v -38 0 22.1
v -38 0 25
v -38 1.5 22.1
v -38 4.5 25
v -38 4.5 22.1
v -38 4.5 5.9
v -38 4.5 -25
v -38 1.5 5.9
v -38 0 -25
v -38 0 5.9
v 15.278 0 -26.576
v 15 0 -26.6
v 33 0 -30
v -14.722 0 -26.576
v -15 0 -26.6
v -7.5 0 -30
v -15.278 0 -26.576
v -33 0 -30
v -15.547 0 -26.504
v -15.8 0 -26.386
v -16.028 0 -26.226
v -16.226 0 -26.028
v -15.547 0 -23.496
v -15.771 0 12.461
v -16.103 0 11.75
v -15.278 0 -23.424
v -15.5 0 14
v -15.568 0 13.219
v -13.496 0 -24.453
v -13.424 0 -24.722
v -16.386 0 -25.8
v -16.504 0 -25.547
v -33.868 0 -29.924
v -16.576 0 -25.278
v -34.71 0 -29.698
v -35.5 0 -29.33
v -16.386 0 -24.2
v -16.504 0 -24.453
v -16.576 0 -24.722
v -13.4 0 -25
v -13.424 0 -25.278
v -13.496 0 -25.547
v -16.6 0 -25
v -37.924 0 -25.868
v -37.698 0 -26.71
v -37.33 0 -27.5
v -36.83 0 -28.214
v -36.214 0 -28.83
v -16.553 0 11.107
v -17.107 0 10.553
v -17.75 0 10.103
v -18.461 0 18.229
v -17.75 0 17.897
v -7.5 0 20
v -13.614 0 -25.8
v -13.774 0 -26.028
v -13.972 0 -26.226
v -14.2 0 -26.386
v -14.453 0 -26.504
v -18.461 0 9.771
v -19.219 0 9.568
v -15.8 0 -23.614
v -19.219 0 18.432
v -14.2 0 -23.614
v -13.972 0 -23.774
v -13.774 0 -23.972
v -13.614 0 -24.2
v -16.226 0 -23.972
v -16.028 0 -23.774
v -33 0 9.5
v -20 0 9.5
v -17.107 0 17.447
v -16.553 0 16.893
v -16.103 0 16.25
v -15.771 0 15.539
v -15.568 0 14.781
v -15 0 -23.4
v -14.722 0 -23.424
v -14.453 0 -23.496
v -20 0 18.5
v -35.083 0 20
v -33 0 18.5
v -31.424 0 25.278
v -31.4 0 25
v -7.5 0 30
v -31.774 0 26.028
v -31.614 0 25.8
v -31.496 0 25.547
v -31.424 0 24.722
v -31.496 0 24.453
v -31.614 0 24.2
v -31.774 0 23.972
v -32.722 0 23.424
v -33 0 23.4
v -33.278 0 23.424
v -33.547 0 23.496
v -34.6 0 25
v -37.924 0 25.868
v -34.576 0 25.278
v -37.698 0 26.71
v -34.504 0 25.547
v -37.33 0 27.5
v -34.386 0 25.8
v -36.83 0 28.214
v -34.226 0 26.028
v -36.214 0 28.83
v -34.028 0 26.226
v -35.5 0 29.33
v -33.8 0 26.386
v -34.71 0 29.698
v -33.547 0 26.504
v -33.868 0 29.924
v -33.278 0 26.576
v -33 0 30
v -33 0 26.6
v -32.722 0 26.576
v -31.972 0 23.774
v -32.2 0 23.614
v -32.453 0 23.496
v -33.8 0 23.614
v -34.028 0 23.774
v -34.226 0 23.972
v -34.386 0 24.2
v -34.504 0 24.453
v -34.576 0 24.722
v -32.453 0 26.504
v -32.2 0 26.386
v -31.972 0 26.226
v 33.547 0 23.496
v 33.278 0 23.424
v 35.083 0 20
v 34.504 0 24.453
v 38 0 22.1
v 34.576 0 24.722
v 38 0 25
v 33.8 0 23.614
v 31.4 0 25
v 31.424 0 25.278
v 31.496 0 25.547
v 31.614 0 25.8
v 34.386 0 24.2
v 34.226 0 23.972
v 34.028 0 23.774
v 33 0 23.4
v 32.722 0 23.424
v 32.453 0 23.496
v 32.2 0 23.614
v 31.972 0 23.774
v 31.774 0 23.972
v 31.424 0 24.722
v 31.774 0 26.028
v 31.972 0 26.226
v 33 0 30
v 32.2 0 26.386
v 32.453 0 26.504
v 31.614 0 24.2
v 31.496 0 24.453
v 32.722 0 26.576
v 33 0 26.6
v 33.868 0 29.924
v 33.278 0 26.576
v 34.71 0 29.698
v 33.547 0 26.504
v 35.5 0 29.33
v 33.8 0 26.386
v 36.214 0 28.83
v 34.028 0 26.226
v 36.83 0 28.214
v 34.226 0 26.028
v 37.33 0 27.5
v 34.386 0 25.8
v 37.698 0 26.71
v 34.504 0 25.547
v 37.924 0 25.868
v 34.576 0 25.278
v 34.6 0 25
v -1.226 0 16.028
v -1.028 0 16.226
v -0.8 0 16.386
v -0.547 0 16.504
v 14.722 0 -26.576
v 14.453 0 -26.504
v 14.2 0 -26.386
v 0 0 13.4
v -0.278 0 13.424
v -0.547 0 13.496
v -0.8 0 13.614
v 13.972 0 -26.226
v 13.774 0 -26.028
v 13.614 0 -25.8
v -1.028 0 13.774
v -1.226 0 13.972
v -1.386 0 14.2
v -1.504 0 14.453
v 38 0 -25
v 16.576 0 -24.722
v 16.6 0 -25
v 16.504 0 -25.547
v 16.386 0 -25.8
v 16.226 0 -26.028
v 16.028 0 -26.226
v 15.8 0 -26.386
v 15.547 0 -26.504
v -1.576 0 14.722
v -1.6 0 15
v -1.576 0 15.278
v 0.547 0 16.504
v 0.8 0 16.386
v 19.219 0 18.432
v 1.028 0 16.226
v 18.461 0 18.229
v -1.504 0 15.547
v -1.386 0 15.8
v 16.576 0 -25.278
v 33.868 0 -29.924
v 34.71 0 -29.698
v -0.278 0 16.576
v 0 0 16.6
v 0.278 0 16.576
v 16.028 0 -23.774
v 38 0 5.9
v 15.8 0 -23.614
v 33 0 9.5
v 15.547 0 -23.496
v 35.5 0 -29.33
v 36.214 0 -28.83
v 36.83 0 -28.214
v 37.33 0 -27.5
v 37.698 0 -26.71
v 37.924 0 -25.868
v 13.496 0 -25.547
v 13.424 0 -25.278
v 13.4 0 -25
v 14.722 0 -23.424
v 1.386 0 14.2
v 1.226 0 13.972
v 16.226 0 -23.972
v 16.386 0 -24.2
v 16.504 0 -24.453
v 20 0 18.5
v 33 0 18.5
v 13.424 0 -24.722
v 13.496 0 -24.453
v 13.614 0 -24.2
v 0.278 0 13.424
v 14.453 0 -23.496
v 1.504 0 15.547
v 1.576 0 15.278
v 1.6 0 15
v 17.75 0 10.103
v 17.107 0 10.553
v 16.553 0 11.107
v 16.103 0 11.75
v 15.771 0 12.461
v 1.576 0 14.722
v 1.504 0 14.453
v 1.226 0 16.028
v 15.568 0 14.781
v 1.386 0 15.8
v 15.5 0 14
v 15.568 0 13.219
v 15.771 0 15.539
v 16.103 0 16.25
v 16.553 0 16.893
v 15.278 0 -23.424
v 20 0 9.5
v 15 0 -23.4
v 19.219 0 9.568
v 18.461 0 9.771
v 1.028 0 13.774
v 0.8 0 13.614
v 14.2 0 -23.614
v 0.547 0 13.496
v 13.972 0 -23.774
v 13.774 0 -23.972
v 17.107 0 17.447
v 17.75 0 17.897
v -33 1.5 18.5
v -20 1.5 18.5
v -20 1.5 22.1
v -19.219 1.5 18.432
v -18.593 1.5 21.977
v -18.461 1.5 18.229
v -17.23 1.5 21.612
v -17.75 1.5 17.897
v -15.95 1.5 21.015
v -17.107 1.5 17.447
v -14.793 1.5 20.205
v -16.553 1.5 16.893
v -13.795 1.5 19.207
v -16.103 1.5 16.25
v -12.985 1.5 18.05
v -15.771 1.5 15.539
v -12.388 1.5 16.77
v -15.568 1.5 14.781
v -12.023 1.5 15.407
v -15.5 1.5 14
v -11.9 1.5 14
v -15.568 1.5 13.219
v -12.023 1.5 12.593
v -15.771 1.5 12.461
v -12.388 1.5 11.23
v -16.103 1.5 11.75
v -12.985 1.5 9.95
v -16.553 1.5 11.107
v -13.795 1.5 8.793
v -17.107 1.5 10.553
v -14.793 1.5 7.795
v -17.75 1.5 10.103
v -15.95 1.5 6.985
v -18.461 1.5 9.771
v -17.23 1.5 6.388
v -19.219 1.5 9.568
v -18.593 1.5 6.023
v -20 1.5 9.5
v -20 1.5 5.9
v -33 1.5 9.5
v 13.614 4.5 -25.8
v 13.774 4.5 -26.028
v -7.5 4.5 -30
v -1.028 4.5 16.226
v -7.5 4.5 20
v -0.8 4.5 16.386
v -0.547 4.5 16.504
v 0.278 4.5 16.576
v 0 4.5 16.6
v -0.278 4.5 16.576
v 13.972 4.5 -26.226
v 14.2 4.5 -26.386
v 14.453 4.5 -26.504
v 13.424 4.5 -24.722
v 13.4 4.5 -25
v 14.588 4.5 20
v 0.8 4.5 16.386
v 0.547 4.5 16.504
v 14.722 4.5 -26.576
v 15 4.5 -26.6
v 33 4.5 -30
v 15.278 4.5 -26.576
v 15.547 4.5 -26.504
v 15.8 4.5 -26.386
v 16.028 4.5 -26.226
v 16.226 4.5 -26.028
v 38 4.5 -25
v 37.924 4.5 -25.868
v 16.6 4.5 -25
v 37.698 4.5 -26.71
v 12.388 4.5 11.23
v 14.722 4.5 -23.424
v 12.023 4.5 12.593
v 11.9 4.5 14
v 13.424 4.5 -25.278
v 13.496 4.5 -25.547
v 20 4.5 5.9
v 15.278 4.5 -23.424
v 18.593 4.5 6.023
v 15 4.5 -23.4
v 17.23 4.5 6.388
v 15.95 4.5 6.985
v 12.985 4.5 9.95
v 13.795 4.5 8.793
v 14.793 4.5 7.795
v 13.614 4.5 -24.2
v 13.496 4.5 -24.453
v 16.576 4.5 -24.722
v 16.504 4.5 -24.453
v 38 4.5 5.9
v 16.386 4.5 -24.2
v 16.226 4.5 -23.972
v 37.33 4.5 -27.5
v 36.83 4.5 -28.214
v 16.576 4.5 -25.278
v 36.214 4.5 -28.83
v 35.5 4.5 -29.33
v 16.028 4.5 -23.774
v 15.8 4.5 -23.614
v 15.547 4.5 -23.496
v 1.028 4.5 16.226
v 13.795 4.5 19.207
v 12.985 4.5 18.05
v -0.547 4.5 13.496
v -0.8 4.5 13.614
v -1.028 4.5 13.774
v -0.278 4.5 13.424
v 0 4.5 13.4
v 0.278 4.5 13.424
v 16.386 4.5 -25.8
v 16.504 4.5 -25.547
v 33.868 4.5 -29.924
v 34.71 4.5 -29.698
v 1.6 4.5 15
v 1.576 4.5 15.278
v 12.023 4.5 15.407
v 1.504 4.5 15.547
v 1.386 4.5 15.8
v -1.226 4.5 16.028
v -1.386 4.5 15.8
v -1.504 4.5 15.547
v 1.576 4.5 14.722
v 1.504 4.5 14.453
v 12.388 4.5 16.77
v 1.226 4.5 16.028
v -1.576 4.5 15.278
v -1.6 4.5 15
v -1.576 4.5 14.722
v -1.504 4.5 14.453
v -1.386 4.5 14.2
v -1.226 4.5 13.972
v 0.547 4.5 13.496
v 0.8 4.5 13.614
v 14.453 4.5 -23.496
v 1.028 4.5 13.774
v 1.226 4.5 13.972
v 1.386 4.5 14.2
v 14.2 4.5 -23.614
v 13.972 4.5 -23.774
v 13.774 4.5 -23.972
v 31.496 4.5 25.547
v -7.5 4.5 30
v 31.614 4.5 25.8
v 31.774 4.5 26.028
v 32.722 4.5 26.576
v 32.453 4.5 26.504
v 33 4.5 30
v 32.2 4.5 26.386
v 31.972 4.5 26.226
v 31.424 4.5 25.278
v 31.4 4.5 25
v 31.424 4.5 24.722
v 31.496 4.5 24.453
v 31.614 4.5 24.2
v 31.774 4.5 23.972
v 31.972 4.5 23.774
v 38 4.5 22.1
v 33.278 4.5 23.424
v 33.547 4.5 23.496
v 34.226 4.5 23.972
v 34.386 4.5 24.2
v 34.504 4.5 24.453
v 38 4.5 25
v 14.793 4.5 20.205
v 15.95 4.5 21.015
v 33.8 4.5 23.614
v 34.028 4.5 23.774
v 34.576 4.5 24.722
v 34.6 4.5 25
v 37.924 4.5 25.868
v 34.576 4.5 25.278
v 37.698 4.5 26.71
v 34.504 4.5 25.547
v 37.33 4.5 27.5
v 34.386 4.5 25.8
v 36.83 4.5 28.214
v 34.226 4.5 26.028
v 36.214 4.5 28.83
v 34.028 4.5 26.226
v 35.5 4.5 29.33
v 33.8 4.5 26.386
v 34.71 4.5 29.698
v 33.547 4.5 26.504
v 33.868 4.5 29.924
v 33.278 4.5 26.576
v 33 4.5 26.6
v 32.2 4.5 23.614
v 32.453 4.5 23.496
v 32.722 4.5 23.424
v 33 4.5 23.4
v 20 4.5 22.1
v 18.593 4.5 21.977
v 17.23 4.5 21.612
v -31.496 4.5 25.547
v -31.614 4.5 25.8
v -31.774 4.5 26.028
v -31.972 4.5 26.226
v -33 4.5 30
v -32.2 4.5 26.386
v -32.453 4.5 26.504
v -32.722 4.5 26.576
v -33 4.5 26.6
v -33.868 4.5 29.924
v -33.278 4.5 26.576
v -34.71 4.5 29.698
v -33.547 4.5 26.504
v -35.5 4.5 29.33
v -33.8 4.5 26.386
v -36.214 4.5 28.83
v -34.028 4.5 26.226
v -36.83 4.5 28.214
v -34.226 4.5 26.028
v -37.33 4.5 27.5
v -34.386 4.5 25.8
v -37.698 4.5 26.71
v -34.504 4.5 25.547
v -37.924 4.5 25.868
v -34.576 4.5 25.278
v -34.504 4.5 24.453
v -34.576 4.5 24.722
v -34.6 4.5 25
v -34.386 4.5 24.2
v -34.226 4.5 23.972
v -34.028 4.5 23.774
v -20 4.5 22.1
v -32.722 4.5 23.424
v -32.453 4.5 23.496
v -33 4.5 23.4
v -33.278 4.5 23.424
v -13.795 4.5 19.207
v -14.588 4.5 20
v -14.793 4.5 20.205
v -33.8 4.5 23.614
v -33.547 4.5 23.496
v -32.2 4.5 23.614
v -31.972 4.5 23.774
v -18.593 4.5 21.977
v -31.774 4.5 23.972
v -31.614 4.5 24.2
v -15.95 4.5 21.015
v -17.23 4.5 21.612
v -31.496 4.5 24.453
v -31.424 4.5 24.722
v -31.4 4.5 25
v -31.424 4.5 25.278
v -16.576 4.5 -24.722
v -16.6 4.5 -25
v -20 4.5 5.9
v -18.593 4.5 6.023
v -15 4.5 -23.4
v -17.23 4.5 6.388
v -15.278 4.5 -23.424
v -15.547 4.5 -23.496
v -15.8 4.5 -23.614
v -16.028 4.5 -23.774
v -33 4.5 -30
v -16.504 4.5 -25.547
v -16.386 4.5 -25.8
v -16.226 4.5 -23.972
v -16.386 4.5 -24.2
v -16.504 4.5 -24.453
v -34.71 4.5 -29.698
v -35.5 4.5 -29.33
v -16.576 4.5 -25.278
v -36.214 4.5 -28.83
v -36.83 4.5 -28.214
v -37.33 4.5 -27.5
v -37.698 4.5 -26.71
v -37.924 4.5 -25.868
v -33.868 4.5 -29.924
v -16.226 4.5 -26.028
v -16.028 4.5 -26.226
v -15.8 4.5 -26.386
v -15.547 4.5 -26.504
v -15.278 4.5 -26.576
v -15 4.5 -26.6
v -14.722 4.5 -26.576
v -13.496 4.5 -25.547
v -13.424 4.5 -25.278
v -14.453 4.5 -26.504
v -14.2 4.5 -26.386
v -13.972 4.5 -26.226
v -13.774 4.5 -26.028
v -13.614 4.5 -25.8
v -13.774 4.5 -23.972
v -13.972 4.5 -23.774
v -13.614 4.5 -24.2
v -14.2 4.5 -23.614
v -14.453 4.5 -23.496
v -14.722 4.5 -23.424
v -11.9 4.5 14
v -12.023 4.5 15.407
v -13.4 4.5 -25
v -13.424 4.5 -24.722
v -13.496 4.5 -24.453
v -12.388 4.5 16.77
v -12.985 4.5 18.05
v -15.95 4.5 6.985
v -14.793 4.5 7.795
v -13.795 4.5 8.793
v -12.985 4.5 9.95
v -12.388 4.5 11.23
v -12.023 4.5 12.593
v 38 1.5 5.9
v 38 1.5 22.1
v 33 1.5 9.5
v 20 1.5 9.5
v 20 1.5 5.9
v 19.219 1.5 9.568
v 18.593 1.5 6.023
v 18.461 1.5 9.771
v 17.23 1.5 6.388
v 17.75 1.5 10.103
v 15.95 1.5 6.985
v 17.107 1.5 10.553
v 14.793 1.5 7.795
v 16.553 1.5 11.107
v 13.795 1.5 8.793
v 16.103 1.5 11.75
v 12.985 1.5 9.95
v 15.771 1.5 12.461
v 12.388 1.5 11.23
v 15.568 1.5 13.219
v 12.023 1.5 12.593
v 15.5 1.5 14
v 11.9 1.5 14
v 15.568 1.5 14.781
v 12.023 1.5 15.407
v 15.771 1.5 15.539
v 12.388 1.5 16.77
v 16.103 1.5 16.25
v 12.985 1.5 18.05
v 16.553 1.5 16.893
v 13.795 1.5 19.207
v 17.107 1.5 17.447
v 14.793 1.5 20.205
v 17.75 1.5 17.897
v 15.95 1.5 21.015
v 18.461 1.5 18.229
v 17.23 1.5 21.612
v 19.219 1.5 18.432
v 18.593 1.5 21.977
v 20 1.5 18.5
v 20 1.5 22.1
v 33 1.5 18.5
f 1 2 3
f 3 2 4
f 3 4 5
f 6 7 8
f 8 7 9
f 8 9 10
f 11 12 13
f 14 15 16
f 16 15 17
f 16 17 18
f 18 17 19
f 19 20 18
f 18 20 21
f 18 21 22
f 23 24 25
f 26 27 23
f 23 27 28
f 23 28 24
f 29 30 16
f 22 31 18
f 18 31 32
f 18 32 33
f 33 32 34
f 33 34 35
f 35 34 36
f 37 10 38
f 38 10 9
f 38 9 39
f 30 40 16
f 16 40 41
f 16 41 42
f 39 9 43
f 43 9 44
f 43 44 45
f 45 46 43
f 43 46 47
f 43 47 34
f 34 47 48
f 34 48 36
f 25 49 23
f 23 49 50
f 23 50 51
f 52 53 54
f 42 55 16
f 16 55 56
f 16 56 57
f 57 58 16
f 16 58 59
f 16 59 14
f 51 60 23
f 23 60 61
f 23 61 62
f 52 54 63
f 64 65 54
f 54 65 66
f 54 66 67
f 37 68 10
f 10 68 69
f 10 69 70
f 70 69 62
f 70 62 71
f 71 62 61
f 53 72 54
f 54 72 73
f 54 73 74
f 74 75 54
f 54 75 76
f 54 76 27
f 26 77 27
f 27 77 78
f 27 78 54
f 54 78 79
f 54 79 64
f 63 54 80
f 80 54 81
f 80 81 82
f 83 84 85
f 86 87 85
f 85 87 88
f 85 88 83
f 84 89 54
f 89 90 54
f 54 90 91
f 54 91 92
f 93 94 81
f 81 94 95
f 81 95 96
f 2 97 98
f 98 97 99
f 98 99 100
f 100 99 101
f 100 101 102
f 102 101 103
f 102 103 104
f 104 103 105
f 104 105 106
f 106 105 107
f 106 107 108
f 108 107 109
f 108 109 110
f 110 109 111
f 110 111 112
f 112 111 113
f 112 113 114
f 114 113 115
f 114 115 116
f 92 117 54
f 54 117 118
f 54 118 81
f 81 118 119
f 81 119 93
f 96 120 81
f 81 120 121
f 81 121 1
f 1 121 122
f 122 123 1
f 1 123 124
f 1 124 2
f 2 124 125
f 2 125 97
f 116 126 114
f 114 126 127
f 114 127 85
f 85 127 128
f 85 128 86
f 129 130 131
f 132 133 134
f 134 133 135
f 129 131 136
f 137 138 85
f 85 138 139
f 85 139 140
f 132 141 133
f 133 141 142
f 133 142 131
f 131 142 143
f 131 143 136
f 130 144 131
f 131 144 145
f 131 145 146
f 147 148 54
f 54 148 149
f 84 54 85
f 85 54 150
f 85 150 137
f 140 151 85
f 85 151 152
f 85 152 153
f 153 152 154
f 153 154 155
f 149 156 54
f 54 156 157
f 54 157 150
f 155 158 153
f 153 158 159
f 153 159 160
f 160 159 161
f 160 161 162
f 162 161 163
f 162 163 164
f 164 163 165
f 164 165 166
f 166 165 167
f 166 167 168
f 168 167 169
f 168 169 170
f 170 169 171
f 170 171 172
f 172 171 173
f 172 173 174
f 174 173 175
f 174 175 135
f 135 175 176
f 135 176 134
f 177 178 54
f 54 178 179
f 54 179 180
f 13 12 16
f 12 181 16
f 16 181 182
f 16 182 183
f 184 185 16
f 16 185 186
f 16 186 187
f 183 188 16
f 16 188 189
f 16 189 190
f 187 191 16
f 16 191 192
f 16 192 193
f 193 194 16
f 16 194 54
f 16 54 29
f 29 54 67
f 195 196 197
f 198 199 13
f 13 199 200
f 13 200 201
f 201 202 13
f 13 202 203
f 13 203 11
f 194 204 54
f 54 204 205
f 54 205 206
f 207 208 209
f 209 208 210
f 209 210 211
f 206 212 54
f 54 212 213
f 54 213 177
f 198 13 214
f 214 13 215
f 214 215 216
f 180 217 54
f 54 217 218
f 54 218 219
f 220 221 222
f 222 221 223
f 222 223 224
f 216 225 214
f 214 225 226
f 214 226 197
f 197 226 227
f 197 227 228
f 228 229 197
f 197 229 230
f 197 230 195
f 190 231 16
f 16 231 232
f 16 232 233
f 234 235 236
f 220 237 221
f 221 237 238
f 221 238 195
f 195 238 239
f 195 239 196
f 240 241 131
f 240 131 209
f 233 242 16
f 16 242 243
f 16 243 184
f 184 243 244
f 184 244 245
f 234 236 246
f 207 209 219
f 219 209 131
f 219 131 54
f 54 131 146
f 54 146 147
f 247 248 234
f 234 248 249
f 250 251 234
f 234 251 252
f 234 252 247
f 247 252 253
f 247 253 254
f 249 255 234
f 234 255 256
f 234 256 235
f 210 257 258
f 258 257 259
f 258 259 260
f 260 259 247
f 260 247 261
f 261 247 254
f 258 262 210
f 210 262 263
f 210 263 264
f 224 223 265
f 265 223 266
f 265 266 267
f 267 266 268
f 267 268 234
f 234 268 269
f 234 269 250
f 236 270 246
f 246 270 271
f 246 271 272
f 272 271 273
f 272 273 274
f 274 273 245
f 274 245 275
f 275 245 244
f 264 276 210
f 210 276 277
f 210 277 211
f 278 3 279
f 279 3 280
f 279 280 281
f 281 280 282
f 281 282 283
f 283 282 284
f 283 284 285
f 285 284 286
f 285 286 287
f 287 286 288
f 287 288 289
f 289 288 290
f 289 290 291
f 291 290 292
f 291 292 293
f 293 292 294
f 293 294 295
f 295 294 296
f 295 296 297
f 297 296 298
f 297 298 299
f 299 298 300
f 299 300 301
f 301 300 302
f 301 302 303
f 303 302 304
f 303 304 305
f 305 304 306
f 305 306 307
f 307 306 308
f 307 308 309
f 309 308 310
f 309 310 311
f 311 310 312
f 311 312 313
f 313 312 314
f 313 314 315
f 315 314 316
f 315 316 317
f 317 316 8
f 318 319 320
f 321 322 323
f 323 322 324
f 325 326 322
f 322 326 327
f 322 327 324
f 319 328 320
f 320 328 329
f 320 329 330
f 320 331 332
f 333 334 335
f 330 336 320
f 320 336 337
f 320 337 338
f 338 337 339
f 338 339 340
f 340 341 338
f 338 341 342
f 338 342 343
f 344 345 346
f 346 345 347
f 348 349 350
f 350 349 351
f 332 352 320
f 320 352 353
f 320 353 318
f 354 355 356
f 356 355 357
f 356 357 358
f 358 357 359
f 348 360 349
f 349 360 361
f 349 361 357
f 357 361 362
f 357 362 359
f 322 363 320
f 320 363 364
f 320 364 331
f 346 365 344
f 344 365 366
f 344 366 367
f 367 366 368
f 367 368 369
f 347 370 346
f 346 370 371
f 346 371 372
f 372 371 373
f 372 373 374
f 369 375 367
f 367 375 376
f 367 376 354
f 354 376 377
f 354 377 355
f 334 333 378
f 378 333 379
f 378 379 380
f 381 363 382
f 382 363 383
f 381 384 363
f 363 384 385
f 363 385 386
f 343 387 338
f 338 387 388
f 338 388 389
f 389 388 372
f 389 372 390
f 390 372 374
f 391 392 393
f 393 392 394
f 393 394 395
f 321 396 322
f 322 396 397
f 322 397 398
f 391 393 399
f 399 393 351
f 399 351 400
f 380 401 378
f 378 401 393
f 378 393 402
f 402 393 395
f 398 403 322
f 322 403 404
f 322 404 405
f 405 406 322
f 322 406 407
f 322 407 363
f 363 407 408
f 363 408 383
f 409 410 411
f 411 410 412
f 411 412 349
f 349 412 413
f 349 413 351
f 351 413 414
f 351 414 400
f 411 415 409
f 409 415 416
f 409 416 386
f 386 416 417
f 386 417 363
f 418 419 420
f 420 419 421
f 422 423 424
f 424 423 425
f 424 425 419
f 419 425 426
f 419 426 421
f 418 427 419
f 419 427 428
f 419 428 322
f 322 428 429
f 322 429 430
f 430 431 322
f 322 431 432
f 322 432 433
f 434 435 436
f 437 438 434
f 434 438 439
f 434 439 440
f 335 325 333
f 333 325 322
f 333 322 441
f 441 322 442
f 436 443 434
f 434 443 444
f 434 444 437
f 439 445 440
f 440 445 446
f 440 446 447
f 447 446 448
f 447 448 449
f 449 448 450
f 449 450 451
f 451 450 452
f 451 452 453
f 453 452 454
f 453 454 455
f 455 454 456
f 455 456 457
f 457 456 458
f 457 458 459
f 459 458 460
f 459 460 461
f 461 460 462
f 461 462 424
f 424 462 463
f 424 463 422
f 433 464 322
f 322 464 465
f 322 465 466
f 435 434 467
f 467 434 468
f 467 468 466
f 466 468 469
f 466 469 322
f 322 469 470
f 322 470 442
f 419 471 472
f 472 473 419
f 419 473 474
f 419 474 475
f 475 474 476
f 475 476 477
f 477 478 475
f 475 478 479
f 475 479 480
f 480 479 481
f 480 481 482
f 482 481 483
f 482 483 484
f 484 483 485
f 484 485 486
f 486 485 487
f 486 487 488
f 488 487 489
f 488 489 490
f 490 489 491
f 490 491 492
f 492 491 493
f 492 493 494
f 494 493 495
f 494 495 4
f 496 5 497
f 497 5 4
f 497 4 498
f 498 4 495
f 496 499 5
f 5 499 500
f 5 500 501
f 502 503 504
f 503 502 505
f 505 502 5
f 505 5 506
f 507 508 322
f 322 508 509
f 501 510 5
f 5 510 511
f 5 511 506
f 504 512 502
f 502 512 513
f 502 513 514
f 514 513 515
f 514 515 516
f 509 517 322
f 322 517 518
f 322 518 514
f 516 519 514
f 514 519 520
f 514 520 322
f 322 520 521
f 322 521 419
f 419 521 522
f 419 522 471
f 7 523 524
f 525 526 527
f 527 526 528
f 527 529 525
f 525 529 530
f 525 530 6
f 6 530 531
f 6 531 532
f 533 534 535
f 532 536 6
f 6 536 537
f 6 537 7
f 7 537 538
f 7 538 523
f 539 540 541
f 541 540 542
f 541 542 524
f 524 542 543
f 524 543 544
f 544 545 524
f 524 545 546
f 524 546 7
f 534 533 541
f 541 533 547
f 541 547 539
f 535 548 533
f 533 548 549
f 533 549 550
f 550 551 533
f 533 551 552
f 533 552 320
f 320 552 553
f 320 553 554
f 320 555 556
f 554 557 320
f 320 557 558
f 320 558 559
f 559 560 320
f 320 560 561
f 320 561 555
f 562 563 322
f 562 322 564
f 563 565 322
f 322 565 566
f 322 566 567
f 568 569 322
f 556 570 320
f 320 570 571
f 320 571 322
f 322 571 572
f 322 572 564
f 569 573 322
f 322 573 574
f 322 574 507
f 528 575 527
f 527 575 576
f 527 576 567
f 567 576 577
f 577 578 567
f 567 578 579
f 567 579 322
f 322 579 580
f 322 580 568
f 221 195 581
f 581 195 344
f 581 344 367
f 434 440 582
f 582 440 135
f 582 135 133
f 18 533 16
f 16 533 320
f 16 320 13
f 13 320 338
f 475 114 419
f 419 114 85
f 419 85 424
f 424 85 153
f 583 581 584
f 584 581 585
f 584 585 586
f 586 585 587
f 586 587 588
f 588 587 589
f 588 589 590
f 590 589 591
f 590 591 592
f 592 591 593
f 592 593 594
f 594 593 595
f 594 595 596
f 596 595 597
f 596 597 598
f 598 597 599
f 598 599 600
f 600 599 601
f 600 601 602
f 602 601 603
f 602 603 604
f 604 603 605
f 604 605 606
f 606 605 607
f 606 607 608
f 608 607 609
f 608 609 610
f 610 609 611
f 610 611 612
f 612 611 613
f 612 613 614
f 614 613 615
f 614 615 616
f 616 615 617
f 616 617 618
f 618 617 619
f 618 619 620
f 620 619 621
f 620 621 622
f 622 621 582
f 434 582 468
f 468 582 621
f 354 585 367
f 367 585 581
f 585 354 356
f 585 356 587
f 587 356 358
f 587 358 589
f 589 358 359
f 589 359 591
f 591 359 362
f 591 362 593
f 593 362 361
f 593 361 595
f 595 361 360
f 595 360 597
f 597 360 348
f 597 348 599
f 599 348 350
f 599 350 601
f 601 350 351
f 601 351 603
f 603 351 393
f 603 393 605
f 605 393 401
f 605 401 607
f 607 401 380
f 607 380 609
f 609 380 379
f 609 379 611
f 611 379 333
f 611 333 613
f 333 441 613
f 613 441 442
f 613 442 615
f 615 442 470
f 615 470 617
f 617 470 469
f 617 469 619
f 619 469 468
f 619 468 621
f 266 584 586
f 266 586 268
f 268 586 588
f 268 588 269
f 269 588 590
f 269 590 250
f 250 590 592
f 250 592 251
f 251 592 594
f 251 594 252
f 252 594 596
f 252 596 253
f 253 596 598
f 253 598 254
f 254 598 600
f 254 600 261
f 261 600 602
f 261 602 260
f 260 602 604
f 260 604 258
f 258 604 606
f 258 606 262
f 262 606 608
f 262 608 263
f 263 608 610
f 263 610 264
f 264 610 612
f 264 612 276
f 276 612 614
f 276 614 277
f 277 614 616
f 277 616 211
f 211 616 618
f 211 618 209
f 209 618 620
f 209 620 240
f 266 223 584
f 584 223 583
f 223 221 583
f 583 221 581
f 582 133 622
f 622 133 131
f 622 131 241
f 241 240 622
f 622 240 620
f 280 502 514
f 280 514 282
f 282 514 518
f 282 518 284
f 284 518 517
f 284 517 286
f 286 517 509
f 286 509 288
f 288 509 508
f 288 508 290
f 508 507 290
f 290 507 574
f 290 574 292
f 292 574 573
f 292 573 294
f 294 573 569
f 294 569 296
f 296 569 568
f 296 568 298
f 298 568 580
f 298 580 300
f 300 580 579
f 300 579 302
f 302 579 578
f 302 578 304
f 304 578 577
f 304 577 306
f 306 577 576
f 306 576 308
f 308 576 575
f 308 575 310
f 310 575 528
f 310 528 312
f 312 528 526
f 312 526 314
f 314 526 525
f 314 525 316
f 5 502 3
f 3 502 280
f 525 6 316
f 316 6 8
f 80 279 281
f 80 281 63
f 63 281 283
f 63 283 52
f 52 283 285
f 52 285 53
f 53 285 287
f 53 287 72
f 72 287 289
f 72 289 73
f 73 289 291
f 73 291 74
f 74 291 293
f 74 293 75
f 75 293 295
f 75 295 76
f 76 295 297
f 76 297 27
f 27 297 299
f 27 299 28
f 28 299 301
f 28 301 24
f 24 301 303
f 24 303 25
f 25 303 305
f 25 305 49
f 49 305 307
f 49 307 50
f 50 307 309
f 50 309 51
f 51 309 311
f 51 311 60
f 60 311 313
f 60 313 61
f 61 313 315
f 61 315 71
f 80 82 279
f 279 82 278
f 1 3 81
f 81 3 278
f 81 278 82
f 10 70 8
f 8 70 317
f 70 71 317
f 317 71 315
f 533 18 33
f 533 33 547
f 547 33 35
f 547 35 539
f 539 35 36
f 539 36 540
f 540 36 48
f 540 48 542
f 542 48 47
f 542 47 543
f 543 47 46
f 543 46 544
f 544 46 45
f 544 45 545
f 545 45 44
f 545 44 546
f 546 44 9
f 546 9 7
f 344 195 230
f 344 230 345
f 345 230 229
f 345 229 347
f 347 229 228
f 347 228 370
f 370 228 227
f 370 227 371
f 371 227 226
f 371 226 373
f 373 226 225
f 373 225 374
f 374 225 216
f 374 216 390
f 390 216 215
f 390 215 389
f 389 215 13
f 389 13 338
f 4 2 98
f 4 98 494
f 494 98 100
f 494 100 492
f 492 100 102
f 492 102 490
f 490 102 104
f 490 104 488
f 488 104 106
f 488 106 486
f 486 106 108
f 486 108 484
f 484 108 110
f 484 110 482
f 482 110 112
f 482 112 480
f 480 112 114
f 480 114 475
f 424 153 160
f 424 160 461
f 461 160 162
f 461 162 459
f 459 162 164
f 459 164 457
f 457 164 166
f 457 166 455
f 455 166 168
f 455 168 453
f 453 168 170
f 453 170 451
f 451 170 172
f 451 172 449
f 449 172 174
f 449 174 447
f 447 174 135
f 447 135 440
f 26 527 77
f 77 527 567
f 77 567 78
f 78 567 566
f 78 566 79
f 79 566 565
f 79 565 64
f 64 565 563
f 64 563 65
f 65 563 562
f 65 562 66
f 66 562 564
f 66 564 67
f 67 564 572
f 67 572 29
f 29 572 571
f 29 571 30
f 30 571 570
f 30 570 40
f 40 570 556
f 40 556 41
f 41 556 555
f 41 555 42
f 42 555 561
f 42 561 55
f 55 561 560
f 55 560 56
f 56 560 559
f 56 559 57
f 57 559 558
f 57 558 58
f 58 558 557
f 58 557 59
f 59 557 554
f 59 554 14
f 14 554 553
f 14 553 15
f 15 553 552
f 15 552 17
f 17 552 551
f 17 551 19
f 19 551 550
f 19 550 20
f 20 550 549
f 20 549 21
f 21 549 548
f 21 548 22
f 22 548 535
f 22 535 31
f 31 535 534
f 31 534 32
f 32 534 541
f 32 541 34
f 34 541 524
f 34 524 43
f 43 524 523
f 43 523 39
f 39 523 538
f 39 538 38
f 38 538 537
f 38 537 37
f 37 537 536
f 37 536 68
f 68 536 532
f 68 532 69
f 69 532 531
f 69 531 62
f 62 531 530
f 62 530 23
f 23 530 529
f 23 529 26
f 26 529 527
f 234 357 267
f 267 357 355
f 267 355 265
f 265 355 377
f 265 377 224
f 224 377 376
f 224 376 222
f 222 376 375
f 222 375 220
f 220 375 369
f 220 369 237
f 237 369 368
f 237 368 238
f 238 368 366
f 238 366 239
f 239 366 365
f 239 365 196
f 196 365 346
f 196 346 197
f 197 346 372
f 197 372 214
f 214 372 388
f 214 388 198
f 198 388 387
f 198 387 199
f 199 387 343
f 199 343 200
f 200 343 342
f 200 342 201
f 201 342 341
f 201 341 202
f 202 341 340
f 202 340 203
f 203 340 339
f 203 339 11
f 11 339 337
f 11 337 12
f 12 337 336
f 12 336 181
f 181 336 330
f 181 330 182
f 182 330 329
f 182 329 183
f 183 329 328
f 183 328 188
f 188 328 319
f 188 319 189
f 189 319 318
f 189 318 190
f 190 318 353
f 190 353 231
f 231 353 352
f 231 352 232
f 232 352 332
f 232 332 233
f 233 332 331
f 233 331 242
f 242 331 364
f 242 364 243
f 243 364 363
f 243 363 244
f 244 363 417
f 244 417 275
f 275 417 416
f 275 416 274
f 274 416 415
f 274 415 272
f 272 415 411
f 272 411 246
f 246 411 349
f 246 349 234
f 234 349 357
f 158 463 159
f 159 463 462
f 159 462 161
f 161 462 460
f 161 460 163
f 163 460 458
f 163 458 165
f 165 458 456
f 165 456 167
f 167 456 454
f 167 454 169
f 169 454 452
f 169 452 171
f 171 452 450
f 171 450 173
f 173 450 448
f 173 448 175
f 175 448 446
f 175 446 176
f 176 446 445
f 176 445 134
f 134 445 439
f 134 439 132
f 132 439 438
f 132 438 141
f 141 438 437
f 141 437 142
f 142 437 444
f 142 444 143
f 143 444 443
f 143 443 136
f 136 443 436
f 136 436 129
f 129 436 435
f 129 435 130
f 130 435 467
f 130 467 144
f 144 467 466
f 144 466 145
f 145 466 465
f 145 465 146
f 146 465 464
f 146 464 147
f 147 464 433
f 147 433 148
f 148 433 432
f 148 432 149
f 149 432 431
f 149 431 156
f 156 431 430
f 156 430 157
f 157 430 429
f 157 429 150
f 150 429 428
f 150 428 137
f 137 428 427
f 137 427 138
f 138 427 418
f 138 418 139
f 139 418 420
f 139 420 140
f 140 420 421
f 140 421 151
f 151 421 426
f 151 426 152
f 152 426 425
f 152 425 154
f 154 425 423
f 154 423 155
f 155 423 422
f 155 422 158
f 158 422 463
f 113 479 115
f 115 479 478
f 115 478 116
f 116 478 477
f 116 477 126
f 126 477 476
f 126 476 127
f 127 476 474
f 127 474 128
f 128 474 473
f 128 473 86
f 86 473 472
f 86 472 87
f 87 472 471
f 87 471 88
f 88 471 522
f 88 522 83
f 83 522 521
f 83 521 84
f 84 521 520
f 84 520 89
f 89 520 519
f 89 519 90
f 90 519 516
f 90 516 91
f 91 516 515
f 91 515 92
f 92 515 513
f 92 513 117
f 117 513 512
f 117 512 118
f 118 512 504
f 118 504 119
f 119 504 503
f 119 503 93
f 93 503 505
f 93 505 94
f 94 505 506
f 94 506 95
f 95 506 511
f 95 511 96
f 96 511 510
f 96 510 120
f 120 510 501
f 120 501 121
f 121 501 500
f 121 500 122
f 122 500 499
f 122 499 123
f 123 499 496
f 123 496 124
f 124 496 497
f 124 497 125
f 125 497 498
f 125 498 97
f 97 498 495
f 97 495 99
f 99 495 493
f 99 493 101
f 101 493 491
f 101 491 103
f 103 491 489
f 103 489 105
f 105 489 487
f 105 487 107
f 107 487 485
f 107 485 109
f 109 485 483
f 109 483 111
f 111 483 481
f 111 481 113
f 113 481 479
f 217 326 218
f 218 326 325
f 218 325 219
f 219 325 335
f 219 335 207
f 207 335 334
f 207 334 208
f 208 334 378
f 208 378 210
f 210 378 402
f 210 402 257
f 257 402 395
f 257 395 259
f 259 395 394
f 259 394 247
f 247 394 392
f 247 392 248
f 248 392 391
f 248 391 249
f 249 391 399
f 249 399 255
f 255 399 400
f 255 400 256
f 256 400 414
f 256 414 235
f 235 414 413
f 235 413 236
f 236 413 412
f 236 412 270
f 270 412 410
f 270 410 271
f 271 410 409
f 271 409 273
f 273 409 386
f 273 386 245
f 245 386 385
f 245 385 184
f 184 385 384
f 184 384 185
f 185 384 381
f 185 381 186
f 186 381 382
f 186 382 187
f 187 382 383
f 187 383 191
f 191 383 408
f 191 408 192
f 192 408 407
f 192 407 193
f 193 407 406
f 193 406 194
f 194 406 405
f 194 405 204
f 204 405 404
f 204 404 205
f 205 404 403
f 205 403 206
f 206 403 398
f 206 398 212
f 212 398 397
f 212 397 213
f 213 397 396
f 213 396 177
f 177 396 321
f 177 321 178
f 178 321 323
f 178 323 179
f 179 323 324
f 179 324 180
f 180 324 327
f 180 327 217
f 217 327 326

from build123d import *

# Parameters (mm, degrees)
SKETCH1_W           = 76
SKETCH1_H           = 60
BOSS_EXTRUDE1_DEPTH = 4.5
CUT_EXTRUDE1_DEPTH  = 3
CUT_EXTRUDE2_DEPTH  = 49.507731343
FILLET1_R           = 5
SKETCH4_R           = 1.6
CUT_EXTRUDE3_DEPTH  = 49.623553963


with BuildPart() as part:
    # Sketch1 → Boss-Extrude1 (new body)
    with BuildSketch(Plane(origin=(0, 0, 0), x_dir=(1, 0, 0), z_dir=(0, 1, 0))):
        Rectangle(SKETCH1_W, SKETCH1_H)
    extrude(amount=BOSS_EXTRUDE1_DEPTH)

    # Sketch2 → Cut-Extrude1 (cut)
    with BuildSketch(Plane(origin=(0, 4.5, 0), x_dir=(1, 0, 0), z_dir=(0, 1, 0))):
        with BuildLine():
            Line((20, -5.9), (38, -5.9))
            Line((38, -5.9), (38, -22.1))
            Line((38, -22.1), (20, -22.1))
            ThreePointArc((20, -22.1), (11.9, -14), (20, -5.9))
        make_face()
    cut_extrude1 = extrude(amount=-CUT_EXTRUDE1_DEPTH, mode=Mode.SUBTRACT)

    # Sketch3 → Cut-Extrude2 (cut, through all)
    with BuildSketch(Plane(origin=(0, 1.5, 0), x_dir=(1, 0, 0), z_dir=(0, 1, 0))):
        with BuildLine():
            Line((20, -9.5), (33, -9.5))
            Line((33, -9.5), (38, -5.9))
            Line((38, -5.9), (38, -22.1))
            Line((38, -22.1), (33, -18.5))
            Line((33, -18.5), (20, -18.5))
            ThreePointArc((20, -18.5), (15.5, -14), (20, -9.5))
        make_face()
    cut_extrude2 = extrude(amount=-CUT_EXTRUDE2_DEPTH, mode=Mode.SUBTRACT)

    # Mirror1: Cut-Extrude1, Cut-Extrude2 across plane
    add(cut_extrude1.mirror(Plane(origin=(0, 0, 0), x_dir=(0, 0, 1), z_dir=(1, 0, 0))), mode=Mode.SUBTRACT)
    add(cut_extrude2.mirror(Plane(origin=(0, 0, 0), x_dir=(0, 0, 1), z_dir=(1, 0, 0))), mode=Mode.SUBTRACT)

    # Fillet1
    fillet1_edges = [part.edges().sort_by_distance(p)[0] for p in [
        (38, 2.25, 30),
        (-38, 2.25, 30),
        (-38, 2.25, -30),
        (38, 2.25, -30),
    ]]
    fillet(fillet1_edges, radius=FILLET1_R)

    # Sketch4 → Cut-Extrude3 (cut, through all)
    with BuildSketch(Plane(origin=(0, 4.5, 0), x_dir=(1, 0, 0), z_dir=(0, 1, 0))):
        with Locations(Location((-15, 25, 0), (0, 0, 270))):
            Circle(SKETCH4_R)
        with Locations(Location((15, 25, 0), (0, 0, 270))):
            Circle(SKETCH4_R)
        with Locations(Location((33, -25, 0), (0, 0, 270))):
            Circle(SKETCH4_R)
        with Locations(Location((-33, -25, 0), (0, 0, 270))):
            Circle(SKETCH4_R)
        with Locations(Location((0, -15, 0), (0, 0, 270))):
            Circle(SKETCH4_R)
    extrude(amount=-CUT_EXTRUDE3_DEPTH, mode=Mode.SUBTRACT)


solid = part.part
